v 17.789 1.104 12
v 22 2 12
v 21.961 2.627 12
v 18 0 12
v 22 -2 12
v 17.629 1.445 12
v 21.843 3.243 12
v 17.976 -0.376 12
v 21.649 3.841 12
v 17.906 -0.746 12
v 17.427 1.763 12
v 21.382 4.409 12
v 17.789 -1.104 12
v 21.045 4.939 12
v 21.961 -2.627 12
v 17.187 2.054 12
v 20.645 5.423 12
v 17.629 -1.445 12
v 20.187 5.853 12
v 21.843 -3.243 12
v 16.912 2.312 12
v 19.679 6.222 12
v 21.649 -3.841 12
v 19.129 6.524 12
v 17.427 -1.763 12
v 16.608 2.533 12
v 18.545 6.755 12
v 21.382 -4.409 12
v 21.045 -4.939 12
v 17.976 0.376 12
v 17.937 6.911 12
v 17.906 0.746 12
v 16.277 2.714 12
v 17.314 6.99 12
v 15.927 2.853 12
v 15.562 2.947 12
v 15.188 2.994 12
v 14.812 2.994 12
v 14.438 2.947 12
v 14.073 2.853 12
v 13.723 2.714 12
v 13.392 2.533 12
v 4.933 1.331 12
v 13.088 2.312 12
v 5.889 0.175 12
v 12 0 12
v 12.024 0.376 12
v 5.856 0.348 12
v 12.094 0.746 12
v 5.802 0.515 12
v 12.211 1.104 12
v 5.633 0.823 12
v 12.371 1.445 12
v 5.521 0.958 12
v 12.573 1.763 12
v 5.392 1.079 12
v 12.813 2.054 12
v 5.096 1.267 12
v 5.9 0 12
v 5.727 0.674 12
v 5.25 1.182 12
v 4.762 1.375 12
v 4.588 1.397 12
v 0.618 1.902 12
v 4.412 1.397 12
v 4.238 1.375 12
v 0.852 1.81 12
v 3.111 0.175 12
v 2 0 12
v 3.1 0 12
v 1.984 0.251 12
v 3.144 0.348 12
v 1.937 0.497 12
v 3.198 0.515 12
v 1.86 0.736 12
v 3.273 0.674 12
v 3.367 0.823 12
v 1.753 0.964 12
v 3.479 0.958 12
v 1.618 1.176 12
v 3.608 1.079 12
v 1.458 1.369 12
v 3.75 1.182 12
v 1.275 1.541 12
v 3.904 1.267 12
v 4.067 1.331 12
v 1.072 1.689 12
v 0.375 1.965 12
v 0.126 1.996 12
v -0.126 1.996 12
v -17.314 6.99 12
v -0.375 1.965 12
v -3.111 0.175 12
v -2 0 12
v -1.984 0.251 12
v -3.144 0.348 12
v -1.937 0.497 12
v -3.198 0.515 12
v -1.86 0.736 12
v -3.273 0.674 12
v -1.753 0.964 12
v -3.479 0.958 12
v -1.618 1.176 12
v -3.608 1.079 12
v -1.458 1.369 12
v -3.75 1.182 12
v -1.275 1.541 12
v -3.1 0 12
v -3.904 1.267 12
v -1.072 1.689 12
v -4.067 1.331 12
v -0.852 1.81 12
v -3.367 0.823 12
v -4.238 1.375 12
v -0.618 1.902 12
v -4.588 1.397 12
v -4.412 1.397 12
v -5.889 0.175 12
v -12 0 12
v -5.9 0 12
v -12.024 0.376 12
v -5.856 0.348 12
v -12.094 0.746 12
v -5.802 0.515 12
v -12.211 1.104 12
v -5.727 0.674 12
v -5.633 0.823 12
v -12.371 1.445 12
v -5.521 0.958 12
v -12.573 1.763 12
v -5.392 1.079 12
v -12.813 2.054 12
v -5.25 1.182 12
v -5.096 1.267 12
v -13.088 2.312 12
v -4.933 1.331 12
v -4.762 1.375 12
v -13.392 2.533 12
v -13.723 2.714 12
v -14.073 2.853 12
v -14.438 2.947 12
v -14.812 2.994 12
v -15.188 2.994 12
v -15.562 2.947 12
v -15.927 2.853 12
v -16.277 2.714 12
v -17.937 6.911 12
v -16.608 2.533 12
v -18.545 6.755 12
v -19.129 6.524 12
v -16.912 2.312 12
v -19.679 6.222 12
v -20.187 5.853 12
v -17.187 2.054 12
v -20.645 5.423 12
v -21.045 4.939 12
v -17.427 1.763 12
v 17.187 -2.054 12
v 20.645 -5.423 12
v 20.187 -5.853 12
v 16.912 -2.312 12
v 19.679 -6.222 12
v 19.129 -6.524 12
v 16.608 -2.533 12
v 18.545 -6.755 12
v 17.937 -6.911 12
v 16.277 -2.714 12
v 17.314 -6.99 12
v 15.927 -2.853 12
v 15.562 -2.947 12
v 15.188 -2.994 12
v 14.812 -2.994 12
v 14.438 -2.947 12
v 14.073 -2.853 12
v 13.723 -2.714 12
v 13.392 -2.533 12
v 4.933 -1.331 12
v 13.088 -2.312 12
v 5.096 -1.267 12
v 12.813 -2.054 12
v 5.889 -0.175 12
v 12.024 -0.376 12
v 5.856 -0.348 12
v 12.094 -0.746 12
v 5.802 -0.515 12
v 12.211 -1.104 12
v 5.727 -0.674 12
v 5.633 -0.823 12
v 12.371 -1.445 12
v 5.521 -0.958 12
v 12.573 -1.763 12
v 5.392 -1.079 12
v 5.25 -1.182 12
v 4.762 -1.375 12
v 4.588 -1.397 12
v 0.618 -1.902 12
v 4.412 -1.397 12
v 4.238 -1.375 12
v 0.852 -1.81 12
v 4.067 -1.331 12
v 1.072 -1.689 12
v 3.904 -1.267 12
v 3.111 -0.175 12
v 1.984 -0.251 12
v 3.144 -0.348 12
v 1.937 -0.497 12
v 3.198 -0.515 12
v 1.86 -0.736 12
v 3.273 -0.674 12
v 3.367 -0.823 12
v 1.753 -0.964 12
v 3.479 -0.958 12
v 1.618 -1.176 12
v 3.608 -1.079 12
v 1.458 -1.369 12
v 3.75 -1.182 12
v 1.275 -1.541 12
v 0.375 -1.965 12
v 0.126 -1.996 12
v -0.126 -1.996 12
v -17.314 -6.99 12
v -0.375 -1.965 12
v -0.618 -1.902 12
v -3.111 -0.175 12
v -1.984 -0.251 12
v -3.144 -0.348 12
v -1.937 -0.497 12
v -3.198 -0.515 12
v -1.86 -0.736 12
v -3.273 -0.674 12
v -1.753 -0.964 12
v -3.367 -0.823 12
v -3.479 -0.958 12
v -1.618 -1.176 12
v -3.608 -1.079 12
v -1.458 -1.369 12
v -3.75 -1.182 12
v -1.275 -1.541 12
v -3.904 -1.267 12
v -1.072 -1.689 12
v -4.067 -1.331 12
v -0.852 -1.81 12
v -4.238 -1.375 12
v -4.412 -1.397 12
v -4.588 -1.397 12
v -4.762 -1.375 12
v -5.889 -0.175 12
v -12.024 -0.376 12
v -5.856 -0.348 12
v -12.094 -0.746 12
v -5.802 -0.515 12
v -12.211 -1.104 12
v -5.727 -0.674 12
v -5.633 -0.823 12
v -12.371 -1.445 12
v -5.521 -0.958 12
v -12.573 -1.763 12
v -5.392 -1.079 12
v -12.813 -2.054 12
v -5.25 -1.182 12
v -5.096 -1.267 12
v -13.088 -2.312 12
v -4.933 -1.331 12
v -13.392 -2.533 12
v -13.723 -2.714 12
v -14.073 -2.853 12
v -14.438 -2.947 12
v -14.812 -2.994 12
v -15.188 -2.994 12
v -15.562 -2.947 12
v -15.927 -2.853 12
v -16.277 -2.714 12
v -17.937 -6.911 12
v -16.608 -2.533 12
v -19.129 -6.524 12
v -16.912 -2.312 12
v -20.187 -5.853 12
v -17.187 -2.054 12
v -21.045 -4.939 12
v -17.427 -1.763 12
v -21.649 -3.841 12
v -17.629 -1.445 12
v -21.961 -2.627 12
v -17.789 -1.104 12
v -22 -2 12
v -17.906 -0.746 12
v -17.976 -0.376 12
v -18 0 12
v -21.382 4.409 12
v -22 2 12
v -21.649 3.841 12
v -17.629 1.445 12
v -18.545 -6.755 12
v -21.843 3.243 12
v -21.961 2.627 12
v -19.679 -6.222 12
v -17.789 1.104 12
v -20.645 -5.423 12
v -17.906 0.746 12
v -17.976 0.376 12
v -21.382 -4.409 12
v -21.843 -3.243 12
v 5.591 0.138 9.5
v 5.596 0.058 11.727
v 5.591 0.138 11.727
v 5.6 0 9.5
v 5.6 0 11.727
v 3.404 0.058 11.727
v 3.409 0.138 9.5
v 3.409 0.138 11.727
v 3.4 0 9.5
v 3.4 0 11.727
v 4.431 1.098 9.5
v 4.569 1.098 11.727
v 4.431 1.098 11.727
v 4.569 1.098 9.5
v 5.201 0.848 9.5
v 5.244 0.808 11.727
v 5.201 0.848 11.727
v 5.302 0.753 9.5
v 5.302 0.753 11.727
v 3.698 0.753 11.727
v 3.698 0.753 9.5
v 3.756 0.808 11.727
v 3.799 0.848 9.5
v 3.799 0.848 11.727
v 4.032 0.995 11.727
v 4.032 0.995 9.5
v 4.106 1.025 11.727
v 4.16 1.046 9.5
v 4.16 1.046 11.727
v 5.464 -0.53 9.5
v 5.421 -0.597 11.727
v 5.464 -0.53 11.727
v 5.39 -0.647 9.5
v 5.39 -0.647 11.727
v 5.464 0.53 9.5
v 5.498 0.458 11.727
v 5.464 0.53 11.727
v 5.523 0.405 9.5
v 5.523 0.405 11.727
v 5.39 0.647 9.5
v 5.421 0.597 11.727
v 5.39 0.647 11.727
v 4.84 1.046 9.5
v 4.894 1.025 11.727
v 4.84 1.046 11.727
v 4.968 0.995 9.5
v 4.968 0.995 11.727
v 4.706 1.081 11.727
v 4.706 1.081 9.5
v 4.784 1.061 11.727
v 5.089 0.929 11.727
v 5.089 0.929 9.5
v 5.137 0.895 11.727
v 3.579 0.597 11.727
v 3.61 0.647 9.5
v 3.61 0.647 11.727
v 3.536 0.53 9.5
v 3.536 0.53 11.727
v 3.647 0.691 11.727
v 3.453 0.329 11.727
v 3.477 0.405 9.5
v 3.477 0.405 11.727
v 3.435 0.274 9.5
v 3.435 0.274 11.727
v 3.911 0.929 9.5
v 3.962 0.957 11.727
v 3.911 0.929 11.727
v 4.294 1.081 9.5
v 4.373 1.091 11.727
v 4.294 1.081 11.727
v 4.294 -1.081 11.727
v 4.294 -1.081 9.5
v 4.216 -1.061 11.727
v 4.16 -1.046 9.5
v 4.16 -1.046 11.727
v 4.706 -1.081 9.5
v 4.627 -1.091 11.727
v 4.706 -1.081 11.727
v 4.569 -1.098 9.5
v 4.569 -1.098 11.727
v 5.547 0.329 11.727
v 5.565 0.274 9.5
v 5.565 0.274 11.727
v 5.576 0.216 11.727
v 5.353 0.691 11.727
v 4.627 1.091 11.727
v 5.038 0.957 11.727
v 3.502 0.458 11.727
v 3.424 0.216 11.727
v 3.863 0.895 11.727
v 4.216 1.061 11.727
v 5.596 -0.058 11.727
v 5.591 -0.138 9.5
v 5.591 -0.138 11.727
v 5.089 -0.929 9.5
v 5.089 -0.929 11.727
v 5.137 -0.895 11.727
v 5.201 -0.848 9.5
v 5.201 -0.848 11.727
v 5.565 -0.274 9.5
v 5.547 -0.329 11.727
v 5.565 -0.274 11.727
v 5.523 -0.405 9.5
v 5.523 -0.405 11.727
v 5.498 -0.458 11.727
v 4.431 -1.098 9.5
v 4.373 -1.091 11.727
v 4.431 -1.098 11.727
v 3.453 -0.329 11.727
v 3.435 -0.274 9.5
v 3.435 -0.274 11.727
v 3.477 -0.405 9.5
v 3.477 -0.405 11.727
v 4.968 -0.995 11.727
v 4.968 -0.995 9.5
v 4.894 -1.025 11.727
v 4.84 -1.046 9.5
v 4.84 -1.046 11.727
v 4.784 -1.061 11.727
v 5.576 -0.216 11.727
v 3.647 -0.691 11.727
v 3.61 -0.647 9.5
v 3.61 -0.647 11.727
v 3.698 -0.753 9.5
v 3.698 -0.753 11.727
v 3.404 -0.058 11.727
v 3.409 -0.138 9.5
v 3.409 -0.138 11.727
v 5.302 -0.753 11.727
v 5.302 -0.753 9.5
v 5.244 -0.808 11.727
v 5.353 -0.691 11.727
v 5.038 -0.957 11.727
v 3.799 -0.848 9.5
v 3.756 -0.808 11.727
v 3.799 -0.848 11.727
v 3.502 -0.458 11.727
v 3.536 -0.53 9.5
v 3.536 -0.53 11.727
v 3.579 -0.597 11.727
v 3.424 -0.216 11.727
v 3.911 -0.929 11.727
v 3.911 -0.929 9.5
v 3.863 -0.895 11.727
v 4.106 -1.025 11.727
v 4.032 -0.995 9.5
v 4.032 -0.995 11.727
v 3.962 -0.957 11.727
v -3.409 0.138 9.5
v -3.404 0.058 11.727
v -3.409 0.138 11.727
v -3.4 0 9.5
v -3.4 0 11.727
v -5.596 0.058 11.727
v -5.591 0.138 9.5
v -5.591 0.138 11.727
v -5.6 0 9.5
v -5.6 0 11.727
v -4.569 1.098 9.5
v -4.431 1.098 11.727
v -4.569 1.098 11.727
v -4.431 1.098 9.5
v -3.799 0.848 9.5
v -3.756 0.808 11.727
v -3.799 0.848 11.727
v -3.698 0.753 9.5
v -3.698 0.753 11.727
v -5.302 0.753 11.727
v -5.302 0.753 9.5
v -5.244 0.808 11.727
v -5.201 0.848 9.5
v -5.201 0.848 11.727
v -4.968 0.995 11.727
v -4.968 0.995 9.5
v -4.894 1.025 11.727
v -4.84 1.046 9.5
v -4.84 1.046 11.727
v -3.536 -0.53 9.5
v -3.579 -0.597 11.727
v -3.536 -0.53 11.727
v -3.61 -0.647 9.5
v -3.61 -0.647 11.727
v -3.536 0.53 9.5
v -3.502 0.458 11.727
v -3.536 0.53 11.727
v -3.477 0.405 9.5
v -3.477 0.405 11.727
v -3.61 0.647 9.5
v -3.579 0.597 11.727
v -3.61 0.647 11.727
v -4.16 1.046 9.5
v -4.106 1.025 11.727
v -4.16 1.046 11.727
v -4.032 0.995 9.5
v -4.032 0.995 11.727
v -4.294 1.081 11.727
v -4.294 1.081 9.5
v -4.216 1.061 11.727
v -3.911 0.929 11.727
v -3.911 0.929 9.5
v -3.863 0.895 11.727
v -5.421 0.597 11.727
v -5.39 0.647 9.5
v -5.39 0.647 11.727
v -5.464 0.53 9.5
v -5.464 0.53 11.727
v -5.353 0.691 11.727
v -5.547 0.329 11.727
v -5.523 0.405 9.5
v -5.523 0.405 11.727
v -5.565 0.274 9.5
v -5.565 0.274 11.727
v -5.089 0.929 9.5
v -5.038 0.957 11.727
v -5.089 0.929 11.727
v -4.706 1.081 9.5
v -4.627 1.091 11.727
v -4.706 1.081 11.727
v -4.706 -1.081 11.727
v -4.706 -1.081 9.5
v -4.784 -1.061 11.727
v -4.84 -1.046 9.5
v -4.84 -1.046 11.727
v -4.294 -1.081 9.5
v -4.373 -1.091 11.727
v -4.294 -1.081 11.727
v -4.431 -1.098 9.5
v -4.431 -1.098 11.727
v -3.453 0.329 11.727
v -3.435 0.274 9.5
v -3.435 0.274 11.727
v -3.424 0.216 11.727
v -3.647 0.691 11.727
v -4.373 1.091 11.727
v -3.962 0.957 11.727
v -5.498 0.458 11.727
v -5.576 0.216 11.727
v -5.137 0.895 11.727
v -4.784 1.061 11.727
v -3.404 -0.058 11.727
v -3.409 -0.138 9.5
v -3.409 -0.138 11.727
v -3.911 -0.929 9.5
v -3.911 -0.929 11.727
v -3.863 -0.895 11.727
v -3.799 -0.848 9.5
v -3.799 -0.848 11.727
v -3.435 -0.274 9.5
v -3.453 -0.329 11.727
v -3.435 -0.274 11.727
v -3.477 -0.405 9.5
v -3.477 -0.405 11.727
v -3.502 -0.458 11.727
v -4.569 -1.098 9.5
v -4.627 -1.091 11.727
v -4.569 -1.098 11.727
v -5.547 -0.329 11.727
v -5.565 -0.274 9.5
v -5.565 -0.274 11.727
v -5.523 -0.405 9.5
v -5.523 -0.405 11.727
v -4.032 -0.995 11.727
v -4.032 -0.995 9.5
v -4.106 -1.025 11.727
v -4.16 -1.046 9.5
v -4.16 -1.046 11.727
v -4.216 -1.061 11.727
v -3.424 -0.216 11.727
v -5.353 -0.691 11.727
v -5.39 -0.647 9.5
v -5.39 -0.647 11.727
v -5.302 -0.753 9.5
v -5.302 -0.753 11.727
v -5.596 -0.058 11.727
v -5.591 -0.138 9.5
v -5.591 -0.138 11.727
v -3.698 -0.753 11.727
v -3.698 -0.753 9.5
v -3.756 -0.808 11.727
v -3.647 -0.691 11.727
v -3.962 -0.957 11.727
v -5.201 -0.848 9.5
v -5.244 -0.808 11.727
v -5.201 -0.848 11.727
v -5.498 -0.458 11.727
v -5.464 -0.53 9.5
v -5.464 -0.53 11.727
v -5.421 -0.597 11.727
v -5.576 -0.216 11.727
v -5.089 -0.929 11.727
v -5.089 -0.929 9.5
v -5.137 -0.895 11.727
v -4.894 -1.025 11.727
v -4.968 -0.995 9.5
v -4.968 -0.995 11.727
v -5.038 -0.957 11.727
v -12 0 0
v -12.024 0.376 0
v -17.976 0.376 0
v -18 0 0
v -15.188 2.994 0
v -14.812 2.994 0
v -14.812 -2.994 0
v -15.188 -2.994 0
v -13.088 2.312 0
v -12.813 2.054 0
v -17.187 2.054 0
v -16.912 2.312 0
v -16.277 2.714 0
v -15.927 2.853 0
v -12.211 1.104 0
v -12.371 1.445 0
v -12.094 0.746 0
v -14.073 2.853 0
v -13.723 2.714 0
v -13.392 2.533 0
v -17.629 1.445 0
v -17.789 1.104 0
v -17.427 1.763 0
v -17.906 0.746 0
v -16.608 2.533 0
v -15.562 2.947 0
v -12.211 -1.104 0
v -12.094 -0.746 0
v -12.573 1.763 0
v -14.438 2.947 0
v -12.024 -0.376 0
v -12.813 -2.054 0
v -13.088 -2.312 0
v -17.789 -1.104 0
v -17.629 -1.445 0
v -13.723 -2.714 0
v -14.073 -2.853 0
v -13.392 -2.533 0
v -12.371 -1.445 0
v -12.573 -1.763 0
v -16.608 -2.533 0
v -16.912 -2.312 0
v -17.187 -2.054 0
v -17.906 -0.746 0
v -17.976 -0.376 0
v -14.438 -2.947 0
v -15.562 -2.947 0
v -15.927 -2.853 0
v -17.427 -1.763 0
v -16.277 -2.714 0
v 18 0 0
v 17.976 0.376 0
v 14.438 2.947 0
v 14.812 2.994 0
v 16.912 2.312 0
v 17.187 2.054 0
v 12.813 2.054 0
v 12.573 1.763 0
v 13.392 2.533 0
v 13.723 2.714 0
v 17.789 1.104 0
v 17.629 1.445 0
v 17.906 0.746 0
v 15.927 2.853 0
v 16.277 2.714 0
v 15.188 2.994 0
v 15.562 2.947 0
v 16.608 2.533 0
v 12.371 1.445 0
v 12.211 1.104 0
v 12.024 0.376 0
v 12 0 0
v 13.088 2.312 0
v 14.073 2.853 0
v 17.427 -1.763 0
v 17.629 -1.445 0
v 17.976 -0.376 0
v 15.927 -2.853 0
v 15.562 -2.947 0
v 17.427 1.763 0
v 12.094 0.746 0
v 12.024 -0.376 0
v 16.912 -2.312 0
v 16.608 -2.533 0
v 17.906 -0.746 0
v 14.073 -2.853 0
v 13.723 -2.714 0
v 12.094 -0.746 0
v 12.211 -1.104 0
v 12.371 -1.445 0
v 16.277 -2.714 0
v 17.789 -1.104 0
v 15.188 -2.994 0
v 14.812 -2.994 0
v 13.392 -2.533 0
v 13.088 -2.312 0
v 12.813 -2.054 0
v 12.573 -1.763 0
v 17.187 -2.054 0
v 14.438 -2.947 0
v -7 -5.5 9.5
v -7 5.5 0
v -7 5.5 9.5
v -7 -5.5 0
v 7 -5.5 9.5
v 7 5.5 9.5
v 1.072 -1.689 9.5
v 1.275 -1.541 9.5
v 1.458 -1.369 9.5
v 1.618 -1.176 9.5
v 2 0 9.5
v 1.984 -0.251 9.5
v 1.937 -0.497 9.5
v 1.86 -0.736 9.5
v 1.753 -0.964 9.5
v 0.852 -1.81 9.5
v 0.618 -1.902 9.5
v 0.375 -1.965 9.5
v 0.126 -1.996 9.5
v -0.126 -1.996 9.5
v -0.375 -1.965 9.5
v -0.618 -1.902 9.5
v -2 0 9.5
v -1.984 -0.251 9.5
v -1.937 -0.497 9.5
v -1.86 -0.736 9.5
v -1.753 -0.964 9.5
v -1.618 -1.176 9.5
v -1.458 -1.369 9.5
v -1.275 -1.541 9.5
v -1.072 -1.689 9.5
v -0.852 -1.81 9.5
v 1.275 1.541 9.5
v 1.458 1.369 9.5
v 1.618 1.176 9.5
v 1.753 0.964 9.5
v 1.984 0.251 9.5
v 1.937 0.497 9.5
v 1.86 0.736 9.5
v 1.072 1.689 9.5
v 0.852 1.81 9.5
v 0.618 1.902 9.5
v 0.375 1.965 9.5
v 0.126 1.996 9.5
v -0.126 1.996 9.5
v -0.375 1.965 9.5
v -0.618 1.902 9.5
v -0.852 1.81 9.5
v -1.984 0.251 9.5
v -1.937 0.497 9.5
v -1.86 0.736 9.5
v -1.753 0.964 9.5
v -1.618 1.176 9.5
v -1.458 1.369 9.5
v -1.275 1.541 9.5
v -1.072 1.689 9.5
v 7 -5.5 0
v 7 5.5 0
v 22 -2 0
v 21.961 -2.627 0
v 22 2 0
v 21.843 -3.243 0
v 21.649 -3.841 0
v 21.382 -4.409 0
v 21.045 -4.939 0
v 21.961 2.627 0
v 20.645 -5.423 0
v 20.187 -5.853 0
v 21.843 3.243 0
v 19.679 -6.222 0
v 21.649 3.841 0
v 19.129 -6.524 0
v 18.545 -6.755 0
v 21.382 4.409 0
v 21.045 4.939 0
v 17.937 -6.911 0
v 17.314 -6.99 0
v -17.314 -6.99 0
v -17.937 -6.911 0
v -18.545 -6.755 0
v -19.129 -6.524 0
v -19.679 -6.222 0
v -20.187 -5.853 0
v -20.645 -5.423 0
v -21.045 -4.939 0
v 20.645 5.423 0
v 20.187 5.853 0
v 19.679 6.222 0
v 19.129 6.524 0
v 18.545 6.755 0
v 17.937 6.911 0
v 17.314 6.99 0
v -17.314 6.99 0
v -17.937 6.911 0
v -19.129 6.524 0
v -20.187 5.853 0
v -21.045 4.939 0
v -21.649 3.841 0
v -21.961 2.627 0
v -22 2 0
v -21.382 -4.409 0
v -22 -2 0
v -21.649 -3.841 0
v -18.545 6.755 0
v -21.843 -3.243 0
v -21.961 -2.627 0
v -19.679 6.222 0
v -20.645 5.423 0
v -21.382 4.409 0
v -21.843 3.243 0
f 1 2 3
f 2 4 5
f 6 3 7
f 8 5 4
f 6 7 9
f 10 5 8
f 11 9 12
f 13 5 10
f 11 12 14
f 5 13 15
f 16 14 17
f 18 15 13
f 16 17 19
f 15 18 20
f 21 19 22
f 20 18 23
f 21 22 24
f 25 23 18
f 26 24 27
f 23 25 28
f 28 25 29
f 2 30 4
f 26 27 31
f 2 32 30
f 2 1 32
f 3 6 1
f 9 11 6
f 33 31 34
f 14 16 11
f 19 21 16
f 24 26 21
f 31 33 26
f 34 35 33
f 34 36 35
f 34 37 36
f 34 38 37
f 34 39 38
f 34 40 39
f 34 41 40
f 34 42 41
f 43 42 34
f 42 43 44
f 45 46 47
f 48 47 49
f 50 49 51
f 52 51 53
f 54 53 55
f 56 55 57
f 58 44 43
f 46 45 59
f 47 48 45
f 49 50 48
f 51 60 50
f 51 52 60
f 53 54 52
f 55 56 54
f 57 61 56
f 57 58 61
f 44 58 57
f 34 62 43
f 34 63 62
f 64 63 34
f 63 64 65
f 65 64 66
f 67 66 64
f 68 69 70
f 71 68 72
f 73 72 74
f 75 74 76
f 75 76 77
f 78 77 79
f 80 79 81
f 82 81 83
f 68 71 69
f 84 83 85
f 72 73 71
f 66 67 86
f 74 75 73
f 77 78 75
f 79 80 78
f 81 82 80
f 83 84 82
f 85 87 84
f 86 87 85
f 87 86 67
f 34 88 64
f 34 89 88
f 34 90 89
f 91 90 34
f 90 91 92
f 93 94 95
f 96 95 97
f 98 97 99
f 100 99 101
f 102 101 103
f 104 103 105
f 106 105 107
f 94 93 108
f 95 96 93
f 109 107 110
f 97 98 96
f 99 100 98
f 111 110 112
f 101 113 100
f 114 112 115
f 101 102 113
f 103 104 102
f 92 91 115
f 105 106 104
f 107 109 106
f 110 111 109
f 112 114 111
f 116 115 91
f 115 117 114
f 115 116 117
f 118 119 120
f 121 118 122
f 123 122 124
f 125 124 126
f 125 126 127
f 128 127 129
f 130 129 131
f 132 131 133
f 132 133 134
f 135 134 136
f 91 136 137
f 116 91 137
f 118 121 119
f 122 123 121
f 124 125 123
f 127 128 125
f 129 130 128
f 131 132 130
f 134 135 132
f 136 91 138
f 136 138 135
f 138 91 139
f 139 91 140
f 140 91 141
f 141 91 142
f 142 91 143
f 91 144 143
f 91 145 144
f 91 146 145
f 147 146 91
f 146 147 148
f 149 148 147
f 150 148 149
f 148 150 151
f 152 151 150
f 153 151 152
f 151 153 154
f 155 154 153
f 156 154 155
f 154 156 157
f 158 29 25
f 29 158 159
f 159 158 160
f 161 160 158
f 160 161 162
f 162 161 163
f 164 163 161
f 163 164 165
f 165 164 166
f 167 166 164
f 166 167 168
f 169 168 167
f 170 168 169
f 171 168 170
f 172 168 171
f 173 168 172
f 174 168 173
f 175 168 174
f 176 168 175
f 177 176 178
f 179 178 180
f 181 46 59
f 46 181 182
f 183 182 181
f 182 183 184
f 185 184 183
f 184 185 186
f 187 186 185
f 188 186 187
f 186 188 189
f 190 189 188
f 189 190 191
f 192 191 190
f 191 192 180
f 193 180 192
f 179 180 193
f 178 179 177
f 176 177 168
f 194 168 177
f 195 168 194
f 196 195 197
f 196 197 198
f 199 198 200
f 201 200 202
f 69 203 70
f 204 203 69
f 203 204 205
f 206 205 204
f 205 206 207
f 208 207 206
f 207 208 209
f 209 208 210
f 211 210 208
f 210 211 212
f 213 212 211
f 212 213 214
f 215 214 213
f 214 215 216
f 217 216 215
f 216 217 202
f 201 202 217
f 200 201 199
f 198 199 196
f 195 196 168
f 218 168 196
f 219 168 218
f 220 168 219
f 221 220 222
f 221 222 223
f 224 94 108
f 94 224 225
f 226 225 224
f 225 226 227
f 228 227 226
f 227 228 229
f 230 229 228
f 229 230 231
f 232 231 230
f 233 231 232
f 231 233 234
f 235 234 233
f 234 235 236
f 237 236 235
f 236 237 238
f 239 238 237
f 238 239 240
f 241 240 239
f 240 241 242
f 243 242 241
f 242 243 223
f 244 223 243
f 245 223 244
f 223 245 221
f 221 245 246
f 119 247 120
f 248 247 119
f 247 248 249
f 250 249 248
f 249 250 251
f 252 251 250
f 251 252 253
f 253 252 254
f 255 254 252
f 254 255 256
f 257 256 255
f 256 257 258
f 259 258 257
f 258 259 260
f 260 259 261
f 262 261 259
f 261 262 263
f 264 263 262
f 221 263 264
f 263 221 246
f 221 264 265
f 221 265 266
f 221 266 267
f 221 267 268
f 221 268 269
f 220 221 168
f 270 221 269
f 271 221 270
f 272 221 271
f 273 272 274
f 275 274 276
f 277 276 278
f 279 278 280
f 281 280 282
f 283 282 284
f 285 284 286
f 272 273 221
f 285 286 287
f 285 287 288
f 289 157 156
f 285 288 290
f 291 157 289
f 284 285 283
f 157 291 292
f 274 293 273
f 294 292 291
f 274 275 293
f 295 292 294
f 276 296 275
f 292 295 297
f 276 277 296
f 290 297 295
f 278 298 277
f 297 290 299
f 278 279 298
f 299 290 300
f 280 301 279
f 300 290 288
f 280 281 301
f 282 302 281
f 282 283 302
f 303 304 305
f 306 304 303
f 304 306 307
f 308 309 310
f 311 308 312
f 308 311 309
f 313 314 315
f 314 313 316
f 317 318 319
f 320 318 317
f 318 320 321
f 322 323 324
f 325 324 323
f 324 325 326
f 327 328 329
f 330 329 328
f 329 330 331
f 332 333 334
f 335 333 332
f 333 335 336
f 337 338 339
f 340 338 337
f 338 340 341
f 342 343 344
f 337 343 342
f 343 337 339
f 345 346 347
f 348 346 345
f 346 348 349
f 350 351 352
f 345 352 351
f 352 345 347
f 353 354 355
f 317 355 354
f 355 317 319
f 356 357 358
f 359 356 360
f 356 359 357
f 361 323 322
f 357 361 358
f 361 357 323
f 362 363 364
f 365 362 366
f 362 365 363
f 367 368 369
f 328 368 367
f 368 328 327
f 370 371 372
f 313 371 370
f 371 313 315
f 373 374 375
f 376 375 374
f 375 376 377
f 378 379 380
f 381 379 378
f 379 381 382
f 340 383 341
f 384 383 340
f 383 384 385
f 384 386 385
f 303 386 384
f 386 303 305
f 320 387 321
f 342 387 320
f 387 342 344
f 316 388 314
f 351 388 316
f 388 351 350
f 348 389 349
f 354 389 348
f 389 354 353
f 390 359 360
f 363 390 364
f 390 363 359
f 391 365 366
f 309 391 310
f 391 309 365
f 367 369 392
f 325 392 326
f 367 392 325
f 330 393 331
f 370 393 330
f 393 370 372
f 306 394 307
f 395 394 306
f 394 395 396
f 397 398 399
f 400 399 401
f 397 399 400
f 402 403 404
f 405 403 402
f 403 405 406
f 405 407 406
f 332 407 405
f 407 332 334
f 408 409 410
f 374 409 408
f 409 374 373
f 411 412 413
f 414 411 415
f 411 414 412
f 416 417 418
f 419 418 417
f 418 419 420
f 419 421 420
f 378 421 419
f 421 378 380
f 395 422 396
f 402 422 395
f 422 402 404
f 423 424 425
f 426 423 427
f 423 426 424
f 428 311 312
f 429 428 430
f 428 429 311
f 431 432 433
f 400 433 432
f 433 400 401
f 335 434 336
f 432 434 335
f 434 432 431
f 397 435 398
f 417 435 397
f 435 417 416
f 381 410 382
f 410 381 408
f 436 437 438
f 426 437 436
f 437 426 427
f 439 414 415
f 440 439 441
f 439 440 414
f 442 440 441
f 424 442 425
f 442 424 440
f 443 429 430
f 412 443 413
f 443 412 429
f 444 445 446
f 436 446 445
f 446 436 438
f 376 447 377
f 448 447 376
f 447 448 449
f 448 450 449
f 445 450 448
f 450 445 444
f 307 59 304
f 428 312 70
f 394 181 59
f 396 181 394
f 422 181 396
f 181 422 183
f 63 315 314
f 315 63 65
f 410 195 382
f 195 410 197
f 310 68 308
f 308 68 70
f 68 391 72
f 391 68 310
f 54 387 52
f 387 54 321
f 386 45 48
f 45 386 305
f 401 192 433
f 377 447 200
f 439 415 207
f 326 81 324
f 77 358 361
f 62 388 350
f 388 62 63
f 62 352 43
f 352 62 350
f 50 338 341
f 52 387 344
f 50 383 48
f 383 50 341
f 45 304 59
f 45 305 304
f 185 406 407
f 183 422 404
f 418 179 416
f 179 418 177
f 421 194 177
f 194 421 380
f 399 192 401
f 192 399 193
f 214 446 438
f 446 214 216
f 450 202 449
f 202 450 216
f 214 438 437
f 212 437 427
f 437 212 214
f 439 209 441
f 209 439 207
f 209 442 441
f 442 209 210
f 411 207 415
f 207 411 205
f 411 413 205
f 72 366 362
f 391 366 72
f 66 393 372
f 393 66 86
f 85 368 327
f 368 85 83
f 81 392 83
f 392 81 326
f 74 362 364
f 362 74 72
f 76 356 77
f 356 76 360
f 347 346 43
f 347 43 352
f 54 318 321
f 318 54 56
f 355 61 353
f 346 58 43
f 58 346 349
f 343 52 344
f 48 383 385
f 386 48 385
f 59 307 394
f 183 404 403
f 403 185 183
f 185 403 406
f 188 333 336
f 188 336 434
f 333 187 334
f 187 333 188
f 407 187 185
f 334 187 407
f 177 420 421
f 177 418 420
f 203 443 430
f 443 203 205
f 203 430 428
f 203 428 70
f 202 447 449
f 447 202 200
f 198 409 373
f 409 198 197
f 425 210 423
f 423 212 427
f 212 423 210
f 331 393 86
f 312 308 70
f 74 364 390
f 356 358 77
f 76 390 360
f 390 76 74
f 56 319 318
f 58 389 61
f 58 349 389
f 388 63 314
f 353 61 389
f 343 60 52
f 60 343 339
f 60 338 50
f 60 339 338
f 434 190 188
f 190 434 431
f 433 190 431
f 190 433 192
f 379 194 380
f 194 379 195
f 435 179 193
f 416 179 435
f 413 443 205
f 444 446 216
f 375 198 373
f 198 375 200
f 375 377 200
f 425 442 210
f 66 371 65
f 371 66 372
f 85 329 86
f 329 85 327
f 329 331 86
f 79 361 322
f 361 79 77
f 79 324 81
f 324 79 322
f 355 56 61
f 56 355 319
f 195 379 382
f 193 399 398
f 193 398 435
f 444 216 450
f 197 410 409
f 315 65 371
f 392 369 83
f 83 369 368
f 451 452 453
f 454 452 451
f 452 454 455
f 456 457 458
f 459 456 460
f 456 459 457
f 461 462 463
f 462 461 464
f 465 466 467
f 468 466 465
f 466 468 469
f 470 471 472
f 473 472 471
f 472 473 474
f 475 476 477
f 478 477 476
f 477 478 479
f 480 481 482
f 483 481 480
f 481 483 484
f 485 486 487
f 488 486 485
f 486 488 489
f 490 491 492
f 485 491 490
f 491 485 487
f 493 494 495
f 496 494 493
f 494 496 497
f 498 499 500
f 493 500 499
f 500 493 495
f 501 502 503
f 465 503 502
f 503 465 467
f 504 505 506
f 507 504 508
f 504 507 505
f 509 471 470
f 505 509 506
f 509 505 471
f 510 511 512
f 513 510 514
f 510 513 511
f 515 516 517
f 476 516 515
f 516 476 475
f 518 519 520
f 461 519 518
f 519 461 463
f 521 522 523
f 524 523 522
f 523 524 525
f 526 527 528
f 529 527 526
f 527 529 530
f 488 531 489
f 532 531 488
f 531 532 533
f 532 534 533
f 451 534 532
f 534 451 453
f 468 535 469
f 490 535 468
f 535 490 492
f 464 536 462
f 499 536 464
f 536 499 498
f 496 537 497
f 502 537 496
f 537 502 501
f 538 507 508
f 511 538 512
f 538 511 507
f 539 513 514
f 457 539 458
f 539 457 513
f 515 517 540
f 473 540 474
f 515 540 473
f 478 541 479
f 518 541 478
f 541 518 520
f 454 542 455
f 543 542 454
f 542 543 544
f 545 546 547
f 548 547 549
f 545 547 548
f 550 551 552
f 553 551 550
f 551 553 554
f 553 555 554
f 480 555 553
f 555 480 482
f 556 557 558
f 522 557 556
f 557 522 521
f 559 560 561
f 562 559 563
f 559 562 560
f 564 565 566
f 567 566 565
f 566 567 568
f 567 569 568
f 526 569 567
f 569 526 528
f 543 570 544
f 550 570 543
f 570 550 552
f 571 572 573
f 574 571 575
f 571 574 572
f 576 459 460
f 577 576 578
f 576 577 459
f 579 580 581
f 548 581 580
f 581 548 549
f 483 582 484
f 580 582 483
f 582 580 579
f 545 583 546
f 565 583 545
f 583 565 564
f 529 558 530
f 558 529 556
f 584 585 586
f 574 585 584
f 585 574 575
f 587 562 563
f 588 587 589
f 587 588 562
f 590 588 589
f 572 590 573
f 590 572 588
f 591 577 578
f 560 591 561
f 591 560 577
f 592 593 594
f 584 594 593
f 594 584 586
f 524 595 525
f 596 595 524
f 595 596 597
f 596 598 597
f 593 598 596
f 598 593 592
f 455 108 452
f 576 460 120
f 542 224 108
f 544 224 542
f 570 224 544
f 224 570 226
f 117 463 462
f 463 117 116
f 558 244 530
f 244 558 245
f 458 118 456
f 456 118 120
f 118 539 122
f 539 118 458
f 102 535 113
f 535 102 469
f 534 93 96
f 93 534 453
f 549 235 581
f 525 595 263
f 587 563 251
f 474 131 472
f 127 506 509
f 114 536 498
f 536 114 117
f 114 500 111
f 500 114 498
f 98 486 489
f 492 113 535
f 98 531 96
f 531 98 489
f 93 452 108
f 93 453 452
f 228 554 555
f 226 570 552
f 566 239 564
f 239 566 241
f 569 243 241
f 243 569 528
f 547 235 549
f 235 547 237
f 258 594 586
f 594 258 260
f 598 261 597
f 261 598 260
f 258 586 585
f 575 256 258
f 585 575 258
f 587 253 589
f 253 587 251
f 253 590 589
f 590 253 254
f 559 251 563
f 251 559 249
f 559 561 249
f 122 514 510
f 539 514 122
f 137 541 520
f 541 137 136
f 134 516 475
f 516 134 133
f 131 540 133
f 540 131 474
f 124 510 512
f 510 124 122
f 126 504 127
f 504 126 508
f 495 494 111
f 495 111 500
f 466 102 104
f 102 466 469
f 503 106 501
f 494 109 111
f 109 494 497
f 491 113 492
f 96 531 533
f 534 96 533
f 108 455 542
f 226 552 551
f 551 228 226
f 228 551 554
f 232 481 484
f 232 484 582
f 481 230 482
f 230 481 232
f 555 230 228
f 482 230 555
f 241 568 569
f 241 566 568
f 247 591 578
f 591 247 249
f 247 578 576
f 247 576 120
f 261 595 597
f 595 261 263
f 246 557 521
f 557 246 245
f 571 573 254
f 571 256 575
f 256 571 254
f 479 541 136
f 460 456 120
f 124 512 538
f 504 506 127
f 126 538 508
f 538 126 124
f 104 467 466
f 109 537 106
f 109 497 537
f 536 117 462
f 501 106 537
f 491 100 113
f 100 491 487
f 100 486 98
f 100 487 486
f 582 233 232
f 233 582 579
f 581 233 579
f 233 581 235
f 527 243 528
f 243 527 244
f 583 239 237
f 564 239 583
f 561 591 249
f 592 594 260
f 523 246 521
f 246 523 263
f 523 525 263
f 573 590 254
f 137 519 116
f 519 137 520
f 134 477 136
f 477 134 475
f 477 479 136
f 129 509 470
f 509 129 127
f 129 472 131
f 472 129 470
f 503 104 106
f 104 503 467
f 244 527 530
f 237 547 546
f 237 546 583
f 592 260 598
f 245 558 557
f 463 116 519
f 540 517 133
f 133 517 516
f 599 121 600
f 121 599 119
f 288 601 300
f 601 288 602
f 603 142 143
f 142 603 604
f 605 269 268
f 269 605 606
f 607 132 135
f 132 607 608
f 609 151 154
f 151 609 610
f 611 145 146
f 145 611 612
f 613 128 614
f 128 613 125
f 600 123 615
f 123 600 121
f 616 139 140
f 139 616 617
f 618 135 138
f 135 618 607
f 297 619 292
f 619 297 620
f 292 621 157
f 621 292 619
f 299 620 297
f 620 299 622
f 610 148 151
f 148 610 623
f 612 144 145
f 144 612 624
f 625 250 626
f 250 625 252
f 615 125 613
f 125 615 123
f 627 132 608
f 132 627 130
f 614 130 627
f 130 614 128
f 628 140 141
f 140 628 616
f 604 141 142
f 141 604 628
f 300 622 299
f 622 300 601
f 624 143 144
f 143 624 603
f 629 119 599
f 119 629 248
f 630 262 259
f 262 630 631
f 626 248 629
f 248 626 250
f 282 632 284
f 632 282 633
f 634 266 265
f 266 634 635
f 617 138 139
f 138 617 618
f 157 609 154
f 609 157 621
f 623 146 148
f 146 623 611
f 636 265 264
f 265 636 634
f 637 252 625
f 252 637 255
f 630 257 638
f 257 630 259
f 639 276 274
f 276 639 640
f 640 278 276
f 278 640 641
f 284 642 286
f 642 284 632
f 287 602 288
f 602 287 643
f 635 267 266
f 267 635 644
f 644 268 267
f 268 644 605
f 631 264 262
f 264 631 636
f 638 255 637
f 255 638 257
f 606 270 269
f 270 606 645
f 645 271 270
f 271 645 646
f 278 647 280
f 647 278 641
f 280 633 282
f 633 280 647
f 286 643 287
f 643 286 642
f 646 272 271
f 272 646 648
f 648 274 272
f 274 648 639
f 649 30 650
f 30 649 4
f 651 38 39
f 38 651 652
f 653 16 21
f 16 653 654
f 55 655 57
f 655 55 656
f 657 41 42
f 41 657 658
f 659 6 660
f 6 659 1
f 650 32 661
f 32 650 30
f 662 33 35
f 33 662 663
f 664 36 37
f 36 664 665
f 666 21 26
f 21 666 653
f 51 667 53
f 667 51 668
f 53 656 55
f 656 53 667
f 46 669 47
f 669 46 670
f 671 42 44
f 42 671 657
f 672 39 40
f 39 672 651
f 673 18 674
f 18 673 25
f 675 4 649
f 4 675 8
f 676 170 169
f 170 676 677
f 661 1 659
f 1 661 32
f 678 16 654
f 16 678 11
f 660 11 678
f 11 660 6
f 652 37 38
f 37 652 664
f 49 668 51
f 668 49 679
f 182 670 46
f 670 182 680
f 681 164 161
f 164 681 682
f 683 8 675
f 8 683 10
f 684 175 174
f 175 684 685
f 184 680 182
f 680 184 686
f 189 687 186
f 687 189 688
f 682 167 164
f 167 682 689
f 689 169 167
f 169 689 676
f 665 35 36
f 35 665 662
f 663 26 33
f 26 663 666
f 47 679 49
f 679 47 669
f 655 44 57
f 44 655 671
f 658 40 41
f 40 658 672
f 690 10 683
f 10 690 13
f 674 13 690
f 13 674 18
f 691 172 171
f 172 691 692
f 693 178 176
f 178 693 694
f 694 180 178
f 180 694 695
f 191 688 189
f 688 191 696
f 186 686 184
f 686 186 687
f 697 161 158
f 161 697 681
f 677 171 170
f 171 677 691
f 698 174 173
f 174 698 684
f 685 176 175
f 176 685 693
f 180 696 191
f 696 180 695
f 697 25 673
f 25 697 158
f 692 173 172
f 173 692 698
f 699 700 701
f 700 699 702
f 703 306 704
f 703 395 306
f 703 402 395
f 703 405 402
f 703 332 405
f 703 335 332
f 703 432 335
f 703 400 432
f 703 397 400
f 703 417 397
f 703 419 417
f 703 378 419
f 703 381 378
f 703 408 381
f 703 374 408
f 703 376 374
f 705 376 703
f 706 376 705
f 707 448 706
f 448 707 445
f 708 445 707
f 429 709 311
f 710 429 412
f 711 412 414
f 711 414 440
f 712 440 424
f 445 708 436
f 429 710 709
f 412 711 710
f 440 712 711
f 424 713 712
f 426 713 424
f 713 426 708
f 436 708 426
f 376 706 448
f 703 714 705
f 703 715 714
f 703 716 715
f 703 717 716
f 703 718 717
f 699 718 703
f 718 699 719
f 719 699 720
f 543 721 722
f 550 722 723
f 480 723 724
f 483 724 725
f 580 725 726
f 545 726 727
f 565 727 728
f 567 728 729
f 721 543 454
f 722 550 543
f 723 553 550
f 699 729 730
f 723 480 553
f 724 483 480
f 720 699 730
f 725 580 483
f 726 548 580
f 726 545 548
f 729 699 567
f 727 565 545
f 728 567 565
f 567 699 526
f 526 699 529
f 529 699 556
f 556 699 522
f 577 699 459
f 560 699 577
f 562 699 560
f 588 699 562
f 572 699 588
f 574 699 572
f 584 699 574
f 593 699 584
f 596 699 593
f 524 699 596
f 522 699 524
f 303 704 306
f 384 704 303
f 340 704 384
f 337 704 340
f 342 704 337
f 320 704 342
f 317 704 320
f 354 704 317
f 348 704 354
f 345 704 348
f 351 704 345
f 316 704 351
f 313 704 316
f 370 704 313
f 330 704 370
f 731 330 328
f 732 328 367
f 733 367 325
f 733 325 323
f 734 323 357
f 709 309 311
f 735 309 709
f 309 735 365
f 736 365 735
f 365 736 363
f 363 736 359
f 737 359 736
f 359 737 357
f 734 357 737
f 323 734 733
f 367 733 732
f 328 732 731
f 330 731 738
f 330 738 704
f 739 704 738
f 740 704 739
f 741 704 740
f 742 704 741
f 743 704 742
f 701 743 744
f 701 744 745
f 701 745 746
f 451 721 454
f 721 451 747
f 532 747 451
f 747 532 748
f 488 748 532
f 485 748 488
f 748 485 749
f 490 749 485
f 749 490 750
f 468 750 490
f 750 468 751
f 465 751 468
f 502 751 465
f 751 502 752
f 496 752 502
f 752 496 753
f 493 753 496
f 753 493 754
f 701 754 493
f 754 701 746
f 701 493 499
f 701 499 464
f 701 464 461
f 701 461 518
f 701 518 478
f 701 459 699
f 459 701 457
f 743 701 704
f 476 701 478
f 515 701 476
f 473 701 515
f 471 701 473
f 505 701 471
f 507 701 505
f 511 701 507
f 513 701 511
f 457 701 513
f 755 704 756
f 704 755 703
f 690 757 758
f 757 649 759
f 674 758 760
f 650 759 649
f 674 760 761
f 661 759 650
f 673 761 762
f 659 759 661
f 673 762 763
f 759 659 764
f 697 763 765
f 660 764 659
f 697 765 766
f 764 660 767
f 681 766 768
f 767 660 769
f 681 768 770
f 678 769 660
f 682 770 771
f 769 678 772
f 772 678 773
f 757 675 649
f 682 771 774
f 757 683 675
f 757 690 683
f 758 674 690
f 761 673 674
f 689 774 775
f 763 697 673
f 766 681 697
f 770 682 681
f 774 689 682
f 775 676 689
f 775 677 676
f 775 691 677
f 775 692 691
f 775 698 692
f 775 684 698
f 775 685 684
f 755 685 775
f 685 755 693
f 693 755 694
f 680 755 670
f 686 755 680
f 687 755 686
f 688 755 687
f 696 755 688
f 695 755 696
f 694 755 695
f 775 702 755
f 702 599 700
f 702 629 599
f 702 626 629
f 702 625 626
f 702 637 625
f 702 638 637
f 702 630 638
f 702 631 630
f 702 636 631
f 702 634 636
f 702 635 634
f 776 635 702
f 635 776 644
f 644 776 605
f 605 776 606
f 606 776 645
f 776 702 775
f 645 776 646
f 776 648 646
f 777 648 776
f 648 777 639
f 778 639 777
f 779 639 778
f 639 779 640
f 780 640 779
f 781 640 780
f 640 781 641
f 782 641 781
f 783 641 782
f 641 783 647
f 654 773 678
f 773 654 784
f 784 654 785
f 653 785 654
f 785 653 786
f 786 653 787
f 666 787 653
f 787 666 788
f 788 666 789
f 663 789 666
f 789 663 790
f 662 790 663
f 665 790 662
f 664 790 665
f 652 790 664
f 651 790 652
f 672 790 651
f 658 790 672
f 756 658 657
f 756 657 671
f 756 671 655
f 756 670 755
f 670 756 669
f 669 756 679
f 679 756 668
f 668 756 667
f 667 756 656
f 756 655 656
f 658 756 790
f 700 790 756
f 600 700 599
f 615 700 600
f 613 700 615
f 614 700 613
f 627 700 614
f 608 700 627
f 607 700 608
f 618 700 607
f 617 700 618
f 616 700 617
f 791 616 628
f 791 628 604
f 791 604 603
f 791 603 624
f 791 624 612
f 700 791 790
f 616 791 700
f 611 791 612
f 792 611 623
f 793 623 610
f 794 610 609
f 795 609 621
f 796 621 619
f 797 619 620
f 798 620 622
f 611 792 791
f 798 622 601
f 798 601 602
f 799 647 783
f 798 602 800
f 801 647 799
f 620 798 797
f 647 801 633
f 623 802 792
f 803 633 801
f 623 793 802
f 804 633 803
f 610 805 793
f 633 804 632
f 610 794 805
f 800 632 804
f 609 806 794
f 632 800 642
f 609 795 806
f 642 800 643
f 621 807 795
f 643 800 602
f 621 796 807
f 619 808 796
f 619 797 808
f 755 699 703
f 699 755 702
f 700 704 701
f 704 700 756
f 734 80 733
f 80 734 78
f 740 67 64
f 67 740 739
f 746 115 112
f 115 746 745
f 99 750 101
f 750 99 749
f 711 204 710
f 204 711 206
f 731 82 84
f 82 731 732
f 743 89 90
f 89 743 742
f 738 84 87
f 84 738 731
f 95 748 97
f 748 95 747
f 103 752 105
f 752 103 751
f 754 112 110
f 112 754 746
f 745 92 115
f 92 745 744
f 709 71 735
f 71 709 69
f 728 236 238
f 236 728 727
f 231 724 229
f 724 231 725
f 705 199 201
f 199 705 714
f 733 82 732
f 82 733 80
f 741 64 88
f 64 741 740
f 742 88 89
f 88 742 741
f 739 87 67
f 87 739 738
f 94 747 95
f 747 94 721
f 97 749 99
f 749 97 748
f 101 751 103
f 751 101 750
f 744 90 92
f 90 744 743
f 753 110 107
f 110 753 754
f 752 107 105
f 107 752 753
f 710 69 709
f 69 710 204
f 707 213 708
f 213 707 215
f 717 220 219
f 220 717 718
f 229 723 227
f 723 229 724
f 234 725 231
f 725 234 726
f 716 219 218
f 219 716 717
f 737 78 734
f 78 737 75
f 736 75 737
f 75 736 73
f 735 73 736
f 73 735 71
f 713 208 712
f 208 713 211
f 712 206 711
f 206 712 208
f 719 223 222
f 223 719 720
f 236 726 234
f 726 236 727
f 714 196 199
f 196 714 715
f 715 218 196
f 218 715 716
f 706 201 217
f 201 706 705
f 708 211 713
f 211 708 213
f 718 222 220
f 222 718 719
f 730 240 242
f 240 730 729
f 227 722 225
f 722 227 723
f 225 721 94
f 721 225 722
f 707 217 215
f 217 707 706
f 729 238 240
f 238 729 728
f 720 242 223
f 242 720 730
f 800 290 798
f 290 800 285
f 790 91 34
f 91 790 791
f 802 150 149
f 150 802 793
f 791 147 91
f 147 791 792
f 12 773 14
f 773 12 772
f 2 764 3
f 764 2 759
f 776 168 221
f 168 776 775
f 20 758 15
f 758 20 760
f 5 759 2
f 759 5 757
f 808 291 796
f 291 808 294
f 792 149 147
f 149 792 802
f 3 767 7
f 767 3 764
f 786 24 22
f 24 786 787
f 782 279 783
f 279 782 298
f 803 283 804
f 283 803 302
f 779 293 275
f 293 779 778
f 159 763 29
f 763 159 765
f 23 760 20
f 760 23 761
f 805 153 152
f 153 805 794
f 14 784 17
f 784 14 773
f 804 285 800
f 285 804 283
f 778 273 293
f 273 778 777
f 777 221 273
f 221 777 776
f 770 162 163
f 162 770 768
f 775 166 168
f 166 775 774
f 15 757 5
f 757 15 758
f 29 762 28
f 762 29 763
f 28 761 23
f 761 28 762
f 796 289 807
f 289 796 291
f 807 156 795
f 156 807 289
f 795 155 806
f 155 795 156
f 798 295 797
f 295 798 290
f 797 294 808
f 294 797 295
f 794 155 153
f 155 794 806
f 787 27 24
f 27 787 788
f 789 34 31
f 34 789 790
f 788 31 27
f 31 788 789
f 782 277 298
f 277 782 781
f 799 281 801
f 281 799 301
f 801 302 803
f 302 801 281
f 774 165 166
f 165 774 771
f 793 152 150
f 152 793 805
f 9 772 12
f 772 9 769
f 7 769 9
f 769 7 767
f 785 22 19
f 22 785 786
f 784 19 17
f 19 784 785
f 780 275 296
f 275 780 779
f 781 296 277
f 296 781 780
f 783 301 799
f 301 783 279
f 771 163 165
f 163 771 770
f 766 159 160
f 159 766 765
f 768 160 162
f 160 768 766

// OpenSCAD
$fn = 50;


difference() {
	union() {
		hull() {
			translate(v = [-17.0000000000, 2.0000000000, 0]) {
				cylinder(h = 12, r = 5);
			}
			translate(v = [17.0000000000, 2.0000000000, 0]) {
				cylinder(h = 12, r = 5);
			}
			translate(v = [-17.0000000000, -2.0000000000, 0]) {
				cylinder(h = 12, r = 5);
			}
			translate(v = [17.0000000000, -2.0000000000, 0]) {
				cylinder(h = 12, r = 5);
			}
		}
	}
	union() {
		translate(v = [4.5000000000, 0, 12]) {
			rotate(a = [0, 0, 0]) {
				difference() {
					union() {
						translate(v = [0, 0, -4.0000000000]) {
							cylinder(h = 4, r = 0.8500000000);
						}
						translate(v = [0, 0, -4.0000000000]) {
							cylinder(h = 4, r = 1.1000000000);
						}
						translate(v = [0, 0, -0.5000000000]) {
							cylinder(h = 0.5000000000, r1 = 0.8500000000, r2 = 1.4000000000);
						}
						translate(v = [0, 0, -4.0000000000]) {
							cylinder(h = 4, r = 0.8500000000);
						}
					}
					union();
				}
			}
		}
		translate(v = [-4.5000000000, 0, 12]) {
			rotate(a = [0, 0, 0]) {
				difference() {
					union() {
						translate(v = [0, 0, -4.0000000000]) {
							cylinder(h = 4, r = 0.8500000000);
						}
						translate(v = [0, 0, -4.0000000000]) {
							cylinder(h = 4, r = 1.1000000000);
						}
						translate(v = [0, 0, -0.5000000000]) {
							cylinder(h = 0.5000000000, r1 = 0.8500000000, r2 = 1.4000000000);
						}
						translate(v = [0, 0, -4.0000000000]) {
							cylinder(h = 4, r = 0.8500000000);
						}
					}
					union();
				}
			}
		}
		translate(v = [-15.0000000000, 0.0000000000, -100.0000000000]) {
			cylinder(h = 200, r = 3.0000000000);
		}
		translate(v = [15.0000000000, 0.0000000000, -100.0000000000]) {
			cylinder(h = 200, r = 3.0000000000);
		}
		translate(v = [15.0000000000, 0.0000000000, -100.0000000000]) {
			cylinder(h = 200, r = 3.0000000000);
		}
		translate(v = [-15.0000000000, 0.0000000000, -100.0000000000]) {
			cylinder(h = 200, r = 1.5000000000);
		}
		translate(v = [15.0000000000, 0.0000000000, -100.0000000000]) {
			cylinder(h = 200, r = 1.5000000000);
		}
		translate(v = [-15.0000000000, 0.0000000000, -100.0000000000]) {
			cylinder(h = 200, r = 1.5000000000);
		}
		translate(v = [15.0000000000, 0.0000000000, -100.0000000000]) {
			cylinder(h = 200, r = 1.5000000000);
		}
		translate(v = [-15.0000000000, 0.0000000000, -100.0000000000]) {
			cylinder(h = 200, r = 1.5000000000);
		}
		translate(v = [15.0000000000, 0.0000000000, -100.0000000000]) {
			cylinder(h = 200, r = 1.5000000000);
		}
		translate(v = [-7.0000000000, -5.5000000000, 0]) {
			cube(size = [14, 11, 9.5000000000]);
		}
		cylinder(h = 12, r = 2.0000000000);
	}
}
